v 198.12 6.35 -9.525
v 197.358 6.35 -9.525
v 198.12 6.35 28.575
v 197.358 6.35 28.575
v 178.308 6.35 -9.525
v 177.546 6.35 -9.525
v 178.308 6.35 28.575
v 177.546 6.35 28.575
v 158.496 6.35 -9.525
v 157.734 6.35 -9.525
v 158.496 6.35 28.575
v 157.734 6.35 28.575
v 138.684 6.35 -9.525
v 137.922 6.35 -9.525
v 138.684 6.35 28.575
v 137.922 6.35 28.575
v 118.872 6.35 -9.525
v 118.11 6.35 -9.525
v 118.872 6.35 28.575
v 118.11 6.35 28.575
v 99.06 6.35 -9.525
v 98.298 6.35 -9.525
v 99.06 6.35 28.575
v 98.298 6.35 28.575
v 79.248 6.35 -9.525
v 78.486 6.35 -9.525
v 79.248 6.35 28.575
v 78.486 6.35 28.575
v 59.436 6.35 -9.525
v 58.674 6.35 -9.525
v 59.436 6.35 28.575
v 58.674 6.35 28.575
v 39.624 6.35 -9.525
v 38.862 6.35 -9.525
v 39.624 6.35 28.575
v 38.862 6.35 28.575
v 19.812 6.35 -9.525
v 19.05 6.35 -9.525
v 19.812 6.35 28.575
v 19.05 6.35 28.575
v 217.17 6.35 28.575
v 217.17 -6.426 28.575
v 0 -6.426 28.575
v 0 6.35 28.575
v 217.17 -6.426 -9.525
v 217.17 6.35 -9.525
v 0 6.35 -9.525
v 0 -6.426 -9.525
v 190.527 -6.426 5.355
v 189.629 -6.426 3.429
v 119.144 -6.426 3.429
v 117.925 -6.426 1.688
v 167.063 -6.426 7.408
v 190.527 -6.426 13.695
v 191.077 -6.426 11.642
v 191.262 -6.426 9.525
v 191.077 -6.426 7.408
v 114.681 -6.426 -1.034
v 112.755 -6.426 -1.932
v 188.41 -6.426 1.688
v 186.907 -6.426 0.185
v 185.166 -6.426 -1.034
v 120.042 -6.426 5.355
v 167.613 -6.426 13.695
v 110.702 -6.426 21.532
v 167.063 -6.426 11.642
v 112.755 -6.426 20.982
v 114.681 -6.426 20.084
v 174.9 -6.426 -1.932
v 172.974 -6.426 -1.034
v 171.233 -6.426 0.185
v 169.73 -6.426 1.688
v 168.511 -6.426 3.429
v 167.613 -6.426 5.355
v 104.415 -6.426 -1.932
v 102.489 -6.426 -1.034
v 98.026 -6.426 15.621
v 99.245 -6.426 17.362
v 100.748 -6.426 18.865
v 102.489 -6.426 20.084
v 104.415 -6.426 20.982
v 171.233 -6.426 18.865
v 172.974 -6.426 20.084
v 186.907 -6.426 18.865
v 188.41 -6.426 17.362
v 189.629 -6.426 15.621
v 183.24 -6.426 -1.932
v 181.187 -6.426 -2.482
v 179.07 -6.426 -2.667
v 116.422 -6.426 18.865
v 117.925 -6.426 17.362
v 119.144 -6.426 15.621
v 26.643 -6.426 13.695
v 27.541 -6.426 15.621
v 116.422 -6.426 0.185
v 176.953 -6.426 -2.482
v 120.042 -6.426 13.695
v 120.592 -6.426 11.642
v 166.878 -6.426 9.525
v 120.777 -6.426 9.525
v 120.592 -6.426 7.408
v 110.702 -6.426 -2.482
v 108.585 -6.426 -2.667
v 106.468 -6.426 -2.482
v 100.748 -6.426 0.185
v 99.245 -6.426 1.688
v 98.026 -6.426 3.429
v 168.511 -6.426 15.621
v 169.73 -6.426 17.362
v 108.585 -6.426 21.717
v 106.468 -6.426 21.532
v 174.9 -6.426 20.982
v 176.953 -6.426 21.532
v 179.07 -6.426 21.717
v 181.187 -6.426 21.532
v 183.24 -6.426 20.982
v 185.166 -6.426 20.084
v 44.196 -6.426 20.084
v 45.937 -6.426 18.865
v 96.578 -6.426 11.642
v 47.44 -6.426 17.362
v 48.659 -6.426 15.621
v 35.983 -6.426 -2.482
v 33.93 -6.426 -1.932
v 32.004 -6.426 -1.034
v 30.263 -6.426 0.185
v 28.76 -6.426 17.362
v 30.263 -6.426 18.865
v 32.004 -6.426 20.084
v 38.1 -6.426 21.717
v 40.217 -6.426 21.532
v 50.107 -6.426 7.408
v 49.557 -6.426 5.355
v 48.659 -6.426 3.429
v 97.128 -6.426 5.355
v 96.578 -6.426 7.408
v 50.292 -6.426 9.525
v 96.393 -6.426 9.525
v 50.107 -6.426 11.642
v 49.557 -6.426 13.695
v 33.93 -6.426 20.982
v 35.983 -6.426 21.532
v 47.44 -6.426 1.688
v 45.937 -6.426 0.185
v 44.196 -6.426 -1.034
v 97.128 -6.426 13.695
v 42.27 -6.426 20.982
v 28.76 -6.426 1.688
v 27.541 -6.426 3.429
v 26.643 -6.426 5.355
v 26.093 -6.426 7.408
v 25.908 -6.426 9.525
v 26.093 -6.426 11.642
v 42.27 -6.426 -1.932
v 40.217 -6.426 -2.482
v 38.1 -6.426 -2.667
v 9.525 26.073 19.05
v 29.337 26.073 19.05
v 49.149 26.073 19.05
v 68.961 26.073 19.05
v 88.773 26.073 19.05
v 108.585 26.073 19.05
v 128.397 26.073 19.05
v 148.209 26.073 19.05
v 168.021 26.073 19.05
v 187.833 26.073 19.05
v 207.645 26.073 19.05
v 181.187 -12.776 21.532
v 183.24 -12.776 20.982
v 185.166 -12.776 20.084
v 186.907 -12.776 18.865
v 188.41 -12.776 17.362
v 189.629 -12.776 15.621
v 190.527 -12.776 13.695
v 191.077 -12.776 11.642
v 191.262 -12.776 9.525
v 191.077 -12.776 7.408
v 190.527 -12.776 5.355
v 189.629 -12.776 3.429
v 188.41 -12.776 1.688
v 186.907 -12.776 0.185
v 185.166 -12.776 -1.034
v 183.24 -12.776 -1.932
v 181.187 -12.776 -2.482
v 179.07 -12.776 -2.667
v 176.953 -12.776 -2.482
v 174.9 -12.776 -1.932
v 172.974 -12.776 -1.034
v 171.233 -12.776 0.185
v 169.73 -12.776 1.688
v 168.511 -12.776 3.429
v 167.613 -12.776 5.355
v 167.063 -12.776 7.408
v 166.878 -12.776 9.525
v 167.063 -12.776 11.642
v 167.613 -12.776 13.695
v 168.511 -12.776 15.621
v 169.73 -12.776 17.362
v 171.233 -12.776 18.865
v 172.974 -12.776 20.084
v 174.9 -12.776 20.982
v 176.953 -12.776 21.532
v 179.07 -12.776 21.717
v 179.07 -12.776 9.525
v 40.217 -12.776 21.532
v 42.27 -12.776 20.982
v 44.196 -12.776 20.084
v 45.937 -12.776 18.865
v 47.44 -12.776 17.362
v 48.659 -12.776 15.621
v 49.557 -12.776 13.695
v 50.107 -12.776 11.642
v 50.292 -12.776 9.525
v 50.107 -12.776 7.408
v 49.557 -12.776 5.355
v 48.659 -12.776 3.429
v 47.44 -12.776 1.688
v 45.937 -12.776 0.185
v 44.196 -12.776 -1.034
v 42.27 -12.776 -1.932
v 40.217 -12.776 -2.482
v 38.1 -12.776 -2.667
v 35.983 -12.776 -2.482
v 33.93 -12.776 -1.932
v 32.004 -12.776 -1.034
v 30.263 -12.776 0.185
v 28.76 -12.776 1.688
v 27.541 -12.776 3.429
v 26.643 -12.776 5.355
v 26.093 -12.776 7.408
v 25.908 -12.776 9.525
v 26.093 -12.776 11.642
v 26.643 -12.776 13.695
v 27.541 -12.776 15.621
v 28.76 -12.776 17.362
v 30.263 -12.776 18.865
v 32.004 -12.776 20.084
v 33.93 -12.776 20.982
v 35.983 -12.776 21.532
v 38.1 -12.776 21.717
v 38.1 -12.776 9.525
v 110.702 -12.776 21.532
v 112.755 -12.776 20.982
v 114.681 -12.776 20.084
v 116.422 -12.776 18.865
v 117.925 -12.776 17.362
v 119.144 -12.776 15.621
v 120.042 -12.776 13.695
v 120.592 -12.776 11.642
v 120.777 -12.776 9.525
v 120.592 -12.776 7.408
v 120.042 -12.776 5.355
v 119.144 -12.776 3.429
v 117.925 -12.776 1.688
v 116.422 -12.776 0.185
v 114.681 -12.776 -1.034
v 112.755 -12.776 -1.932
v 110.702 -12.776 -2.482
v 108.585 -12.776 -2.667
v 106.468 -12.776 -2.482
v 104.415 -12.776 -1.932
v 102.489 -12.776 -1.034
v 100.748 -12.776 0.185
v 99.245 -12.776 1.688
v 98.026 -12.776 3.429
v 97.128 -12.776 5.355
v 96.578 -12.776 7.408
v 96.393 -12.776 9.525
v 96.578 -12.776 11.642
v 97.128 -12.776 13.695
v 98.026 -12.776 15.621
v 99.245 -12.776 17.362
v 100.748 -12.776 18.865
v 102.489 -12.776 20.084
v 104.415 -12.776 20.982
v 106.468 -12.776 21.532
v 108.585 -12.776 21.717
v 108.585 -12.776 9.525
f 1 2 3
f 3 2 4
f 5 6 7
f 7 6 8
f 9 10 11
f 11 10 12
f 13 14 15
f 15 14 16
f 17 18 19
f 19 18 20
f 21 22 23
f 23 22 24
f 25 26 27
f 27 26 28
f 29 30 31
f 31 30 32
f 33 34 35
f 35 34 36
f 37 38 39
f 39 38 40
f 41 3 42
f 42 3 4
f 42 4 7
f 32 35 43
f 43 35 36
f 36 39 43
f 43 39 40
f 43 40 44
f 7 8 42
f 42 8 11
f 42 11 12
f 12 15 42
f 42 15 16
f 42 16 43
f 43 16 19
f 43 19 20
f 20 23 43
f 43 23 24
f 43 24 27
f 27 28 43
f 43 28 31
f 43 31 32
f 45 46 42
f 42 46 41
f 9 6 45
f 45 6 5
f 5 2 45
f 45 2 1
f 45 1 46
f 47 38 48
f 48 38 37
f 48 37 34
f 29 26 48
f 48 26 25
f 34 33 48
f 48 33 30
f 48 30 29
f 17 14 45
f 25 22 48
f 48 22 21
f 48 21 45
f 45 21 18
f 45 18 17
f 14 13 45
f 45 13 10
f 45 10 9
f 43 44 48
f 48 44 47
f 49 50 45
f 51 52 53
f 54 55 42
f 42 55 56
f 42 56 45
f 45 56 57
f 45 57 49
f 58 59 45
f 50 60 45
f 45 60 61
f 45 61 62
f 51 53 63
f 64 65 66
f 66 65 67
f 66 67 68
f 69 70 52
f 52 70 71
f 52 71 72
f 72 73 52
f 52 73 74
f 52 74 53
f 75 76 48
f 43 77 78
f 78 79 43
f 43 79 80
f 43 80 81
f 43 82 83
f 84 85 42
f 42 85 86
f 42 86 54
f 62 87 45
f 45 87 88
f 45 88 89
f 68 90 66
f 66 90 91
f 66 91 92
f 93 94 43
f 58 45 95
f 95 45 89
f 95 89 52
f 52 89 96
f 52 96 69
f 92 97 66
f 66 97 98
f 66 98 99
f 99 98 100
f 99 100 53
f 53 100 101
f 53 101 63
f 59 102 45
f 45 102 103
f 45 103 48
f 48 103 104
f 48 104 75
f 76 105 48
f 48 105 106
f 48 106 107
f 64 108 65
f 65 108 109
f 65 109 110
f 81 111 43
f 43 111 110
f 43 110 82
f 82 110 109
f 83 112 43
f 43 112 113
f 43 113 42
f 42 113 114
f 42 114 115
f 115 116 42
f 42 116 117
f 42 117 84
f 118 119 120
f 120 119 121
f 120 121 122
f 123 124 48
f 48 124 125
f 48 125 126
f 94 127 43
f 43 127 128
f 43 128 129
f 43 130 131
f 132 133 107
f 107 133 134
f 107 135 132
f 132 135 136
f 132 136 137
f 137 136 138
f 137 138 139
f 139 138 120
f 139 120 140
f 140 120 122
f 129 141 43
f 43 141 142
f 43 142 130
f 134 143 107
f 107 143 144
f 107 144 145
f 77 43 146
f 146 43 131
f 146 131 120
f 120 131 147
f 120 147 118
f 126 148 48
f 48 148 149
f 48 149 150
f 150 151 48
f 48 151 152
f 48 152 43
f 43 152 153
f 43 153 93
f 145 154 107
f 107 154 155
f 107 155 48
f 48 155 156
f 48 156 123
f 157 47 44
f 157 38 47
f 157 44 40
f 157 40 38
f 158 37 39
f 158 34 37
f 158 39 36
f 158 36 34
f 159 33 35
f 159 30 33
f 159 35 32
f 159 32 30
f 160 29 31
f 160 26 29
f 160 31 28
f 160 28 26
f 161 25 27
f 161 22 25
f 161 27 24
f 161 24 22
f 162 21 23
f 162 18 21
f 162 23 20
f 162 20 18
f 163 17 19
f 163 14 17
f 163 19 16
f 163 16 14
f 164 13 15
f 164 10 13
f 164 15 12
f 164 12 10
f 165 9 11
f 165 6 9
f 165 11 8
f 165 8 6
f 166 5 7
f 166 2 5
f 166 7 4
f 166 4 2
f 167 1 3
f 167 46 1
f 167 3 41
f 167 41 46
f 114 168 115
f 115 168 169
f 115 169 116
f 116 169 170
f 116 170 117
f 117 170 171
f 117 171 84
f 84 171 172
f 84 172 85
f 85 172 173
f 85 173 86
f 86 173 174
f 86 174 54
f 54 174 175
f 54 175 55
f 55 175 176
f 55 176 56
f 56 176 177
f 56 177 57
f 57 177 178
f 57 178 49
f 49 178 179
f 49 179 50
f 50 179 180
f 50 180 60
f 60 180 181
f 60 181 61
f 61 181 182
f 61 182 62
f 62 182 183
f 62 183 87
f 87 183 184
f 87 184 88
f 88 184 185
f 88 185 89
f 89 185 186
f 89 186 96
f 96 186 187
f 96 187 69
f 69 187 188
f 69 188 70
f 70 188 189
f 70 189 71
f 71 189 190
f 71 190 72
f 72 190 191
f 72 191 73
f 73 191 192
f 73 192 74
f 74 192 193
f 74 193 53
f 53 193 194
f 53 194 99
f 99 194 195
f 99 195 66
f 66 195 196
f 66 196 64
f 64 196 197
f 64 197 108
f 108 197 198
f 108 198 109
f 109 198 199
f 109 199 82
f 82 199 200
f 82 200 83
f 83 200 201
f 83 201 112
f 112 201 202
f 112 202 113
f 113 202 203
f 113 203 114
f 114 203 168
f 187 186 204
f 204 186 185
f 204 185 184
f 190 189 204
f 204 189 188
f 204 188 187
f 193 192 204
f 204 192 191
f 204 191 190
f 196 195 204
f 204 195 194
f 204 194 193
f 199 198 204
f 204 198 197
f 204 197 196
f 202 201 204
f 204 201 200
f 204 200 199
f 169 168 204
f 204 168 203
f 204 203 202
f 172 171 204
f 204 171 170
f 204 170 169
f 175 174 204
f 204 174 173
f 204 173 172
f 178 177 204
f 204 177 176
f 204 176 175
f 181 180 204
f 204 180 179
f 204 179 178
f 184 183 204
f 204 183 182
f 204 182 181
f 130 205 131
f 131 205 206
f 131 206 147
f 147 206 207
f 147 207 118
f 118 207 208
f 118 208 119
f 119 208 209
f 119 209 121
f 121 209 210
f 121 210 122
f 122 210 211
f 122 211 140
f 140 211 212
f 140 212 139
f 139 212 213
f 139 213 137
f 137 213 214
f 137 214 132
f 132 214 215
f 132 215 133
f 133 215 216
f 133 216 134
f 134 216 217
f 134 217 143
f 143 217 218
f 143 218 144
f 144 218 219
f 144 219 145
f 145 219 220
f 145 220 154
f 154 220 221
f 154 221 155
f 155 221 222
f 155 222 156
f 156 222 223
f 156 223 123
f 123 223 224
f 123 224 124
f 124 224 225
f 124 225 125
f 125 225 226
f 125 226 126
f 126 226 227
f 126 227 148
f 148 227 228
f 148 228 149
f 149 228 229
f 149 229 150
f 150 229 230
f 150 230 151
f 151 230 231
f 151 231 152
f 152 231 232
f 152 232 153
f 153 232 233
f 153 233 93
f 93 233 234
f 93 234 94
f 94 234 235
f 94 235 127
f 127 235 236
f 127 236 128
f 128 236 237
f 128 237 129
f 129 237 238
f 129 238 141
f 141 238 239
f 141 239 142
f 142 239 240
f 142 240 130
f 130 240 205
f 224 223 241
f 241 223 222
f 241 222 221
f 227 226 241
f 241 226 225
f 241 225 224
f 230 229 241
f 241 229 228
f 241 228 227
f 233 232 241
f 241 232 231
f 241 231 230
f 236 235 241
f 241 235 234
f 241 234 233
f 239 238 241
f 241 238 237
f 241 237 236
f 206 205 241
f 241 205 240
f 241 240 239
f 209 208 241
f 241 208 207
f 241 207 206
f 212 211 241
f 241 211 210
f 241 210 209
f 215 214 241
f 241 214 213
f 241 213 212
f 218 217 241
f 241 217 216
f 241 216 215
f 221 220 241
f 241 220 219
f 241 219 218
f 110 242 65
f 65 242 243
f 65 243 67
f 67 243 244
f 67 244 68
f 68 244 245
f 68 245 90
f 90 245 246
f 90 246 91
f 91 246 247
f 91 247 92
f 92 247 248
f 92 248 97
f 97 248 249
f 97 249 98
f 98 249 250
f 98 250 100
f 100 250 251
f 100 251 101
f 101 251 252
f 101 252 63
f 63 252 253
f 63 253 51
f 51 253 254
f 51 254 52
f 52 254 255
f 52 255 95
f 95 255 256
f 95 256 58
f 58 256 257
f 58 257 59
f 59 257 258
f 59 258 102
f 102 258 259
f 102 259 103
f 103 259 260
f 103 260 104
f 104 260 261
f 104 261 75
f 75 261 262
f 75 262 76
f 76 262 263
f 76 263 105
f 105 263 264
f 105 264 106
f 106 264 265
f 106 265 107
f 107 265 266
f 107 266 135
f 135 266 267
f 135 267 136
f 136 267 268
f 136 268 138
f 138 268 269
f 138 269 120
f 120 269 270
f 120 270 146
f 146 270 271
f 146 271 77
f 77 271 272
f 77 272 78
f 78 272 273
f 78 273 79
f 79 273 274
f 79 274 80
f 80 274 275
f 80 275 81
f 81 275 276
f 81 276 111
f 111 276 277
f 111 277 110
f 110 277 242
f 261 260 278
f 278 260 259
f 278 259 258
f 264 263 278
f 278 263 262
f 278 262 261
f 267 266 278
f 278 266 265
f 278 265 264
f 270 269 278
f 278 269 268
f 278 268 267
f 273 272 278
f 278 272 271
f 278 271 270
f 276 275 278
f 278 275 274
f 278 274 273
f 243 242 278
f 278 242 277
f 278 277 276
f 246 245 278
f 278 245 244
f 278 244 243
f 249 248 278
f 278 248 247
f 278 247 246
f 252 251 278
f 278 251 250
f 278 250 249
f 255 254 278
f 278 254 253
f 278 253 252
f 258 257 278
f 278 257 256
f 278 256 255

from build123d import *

# Parameters (mm, degrees)
SKETCH1_W           = 19.05
SKETCH1_H           = 19.05
BOSS_EXTRUDE2_DEPTH = 6.35
SKETCH8_W           = 217.17
SKETCH8_H           = 38.1
BOSS_EXTRUDE4_DEPTH = 6.35
SKETCH8_5_W         = 217.17
SKETCH8_5_H         = 38.1
BOSS_EXTRUDE5_DEPTH = 6.4262
LPATTERN3_COUNT     = 11
LPATTERN3_PITCH     = 19.812
SKETCH15_R          = 12.192
BOSS_EXTRUDE6_DEPTH = 6.35


with BuildPart() as part:
    # Sketch1 → Boss-Extrude2 (new body)
    with BuildSketch(Plane(origin=(0, 0, 0), x_dir=(1, 0, 0), z_dir=(0, 1, 0))):
        with Locations((9.525, -9.525)):
            Rectangle(SKETCH1_W, SKETCH1_H)
    extrude(amount=BOSS_EXTRUDE2_DEPTH)

    # Sketch8 → Boss-Extrude4 (add)
    with BuildSketch(Plane(origin=(0, 0, 0), x_dir=(1, 0, 0), z_dir=(0, 1, 0))):
        with Locations((108.585, -9.525)):
            Rectangle(SKETCH8_W, SKETCH8_H)
    extrude(amount=BOSS_EXTRUDE4_DEPTH)

    # Sketch8<5> → Boss-Extrude5 (add)
    with BuildSketch(Plane(origin=(0, 0, 0), x_dir=(1, 0, 0), z_dir=(0, 1, 0))):
        with Locations((108.585, -9.525)):
            Rectangle(SKETCH8_5_W, SKETCH8_5_H)
    extrude(amount=-BOSS_EXTRUDE5_DEPTH)

    # Sketch9 → Loft3 section 0
    with BuildSketch(Plane(origin=(0, 6.35, 0), x_dir=(1, 0, 0), z_dir=(0, 1, 0)), mode=Mode.PRIVATE) as loft3_s0:
        with BuildLine():
            Line((0, 9.525), (19.05, 9.525))
            Line((19.05, 9.525), (19.05, -28.575))
            Line((19.05, -28.575), (0, -28.575))
            Line((0, -28.575), (0, 9.525))
        make_face()
    loft3 = loft([loft3_s0.sketch, Vertex(9.525, 26.0731, 19.05)])

    # LPattern3: Loft3 ×11
    with Locations(*[(i * LPATTERN3_PITCH, 0, 0) for i in range(1, LPATTERN3_COUNT)]):
        add(loft3)

    # Sketch15 → Boss-Extrude6 (add)
    with BuildSketch(Plane.XZ.offset(6.4262)):
        with Locations((179.07, 9.525)):
            Circle(SKETCH15_R)
        with Locations((38.1, 9.525)):
            Circle(SKETCH15_R)
        with Locations((108.585, 9.525)):
            Circle(SKETCH15_R)
    extrude(amount=BOSS_EXTRUDE6_DEPTH)


solid = part.part
